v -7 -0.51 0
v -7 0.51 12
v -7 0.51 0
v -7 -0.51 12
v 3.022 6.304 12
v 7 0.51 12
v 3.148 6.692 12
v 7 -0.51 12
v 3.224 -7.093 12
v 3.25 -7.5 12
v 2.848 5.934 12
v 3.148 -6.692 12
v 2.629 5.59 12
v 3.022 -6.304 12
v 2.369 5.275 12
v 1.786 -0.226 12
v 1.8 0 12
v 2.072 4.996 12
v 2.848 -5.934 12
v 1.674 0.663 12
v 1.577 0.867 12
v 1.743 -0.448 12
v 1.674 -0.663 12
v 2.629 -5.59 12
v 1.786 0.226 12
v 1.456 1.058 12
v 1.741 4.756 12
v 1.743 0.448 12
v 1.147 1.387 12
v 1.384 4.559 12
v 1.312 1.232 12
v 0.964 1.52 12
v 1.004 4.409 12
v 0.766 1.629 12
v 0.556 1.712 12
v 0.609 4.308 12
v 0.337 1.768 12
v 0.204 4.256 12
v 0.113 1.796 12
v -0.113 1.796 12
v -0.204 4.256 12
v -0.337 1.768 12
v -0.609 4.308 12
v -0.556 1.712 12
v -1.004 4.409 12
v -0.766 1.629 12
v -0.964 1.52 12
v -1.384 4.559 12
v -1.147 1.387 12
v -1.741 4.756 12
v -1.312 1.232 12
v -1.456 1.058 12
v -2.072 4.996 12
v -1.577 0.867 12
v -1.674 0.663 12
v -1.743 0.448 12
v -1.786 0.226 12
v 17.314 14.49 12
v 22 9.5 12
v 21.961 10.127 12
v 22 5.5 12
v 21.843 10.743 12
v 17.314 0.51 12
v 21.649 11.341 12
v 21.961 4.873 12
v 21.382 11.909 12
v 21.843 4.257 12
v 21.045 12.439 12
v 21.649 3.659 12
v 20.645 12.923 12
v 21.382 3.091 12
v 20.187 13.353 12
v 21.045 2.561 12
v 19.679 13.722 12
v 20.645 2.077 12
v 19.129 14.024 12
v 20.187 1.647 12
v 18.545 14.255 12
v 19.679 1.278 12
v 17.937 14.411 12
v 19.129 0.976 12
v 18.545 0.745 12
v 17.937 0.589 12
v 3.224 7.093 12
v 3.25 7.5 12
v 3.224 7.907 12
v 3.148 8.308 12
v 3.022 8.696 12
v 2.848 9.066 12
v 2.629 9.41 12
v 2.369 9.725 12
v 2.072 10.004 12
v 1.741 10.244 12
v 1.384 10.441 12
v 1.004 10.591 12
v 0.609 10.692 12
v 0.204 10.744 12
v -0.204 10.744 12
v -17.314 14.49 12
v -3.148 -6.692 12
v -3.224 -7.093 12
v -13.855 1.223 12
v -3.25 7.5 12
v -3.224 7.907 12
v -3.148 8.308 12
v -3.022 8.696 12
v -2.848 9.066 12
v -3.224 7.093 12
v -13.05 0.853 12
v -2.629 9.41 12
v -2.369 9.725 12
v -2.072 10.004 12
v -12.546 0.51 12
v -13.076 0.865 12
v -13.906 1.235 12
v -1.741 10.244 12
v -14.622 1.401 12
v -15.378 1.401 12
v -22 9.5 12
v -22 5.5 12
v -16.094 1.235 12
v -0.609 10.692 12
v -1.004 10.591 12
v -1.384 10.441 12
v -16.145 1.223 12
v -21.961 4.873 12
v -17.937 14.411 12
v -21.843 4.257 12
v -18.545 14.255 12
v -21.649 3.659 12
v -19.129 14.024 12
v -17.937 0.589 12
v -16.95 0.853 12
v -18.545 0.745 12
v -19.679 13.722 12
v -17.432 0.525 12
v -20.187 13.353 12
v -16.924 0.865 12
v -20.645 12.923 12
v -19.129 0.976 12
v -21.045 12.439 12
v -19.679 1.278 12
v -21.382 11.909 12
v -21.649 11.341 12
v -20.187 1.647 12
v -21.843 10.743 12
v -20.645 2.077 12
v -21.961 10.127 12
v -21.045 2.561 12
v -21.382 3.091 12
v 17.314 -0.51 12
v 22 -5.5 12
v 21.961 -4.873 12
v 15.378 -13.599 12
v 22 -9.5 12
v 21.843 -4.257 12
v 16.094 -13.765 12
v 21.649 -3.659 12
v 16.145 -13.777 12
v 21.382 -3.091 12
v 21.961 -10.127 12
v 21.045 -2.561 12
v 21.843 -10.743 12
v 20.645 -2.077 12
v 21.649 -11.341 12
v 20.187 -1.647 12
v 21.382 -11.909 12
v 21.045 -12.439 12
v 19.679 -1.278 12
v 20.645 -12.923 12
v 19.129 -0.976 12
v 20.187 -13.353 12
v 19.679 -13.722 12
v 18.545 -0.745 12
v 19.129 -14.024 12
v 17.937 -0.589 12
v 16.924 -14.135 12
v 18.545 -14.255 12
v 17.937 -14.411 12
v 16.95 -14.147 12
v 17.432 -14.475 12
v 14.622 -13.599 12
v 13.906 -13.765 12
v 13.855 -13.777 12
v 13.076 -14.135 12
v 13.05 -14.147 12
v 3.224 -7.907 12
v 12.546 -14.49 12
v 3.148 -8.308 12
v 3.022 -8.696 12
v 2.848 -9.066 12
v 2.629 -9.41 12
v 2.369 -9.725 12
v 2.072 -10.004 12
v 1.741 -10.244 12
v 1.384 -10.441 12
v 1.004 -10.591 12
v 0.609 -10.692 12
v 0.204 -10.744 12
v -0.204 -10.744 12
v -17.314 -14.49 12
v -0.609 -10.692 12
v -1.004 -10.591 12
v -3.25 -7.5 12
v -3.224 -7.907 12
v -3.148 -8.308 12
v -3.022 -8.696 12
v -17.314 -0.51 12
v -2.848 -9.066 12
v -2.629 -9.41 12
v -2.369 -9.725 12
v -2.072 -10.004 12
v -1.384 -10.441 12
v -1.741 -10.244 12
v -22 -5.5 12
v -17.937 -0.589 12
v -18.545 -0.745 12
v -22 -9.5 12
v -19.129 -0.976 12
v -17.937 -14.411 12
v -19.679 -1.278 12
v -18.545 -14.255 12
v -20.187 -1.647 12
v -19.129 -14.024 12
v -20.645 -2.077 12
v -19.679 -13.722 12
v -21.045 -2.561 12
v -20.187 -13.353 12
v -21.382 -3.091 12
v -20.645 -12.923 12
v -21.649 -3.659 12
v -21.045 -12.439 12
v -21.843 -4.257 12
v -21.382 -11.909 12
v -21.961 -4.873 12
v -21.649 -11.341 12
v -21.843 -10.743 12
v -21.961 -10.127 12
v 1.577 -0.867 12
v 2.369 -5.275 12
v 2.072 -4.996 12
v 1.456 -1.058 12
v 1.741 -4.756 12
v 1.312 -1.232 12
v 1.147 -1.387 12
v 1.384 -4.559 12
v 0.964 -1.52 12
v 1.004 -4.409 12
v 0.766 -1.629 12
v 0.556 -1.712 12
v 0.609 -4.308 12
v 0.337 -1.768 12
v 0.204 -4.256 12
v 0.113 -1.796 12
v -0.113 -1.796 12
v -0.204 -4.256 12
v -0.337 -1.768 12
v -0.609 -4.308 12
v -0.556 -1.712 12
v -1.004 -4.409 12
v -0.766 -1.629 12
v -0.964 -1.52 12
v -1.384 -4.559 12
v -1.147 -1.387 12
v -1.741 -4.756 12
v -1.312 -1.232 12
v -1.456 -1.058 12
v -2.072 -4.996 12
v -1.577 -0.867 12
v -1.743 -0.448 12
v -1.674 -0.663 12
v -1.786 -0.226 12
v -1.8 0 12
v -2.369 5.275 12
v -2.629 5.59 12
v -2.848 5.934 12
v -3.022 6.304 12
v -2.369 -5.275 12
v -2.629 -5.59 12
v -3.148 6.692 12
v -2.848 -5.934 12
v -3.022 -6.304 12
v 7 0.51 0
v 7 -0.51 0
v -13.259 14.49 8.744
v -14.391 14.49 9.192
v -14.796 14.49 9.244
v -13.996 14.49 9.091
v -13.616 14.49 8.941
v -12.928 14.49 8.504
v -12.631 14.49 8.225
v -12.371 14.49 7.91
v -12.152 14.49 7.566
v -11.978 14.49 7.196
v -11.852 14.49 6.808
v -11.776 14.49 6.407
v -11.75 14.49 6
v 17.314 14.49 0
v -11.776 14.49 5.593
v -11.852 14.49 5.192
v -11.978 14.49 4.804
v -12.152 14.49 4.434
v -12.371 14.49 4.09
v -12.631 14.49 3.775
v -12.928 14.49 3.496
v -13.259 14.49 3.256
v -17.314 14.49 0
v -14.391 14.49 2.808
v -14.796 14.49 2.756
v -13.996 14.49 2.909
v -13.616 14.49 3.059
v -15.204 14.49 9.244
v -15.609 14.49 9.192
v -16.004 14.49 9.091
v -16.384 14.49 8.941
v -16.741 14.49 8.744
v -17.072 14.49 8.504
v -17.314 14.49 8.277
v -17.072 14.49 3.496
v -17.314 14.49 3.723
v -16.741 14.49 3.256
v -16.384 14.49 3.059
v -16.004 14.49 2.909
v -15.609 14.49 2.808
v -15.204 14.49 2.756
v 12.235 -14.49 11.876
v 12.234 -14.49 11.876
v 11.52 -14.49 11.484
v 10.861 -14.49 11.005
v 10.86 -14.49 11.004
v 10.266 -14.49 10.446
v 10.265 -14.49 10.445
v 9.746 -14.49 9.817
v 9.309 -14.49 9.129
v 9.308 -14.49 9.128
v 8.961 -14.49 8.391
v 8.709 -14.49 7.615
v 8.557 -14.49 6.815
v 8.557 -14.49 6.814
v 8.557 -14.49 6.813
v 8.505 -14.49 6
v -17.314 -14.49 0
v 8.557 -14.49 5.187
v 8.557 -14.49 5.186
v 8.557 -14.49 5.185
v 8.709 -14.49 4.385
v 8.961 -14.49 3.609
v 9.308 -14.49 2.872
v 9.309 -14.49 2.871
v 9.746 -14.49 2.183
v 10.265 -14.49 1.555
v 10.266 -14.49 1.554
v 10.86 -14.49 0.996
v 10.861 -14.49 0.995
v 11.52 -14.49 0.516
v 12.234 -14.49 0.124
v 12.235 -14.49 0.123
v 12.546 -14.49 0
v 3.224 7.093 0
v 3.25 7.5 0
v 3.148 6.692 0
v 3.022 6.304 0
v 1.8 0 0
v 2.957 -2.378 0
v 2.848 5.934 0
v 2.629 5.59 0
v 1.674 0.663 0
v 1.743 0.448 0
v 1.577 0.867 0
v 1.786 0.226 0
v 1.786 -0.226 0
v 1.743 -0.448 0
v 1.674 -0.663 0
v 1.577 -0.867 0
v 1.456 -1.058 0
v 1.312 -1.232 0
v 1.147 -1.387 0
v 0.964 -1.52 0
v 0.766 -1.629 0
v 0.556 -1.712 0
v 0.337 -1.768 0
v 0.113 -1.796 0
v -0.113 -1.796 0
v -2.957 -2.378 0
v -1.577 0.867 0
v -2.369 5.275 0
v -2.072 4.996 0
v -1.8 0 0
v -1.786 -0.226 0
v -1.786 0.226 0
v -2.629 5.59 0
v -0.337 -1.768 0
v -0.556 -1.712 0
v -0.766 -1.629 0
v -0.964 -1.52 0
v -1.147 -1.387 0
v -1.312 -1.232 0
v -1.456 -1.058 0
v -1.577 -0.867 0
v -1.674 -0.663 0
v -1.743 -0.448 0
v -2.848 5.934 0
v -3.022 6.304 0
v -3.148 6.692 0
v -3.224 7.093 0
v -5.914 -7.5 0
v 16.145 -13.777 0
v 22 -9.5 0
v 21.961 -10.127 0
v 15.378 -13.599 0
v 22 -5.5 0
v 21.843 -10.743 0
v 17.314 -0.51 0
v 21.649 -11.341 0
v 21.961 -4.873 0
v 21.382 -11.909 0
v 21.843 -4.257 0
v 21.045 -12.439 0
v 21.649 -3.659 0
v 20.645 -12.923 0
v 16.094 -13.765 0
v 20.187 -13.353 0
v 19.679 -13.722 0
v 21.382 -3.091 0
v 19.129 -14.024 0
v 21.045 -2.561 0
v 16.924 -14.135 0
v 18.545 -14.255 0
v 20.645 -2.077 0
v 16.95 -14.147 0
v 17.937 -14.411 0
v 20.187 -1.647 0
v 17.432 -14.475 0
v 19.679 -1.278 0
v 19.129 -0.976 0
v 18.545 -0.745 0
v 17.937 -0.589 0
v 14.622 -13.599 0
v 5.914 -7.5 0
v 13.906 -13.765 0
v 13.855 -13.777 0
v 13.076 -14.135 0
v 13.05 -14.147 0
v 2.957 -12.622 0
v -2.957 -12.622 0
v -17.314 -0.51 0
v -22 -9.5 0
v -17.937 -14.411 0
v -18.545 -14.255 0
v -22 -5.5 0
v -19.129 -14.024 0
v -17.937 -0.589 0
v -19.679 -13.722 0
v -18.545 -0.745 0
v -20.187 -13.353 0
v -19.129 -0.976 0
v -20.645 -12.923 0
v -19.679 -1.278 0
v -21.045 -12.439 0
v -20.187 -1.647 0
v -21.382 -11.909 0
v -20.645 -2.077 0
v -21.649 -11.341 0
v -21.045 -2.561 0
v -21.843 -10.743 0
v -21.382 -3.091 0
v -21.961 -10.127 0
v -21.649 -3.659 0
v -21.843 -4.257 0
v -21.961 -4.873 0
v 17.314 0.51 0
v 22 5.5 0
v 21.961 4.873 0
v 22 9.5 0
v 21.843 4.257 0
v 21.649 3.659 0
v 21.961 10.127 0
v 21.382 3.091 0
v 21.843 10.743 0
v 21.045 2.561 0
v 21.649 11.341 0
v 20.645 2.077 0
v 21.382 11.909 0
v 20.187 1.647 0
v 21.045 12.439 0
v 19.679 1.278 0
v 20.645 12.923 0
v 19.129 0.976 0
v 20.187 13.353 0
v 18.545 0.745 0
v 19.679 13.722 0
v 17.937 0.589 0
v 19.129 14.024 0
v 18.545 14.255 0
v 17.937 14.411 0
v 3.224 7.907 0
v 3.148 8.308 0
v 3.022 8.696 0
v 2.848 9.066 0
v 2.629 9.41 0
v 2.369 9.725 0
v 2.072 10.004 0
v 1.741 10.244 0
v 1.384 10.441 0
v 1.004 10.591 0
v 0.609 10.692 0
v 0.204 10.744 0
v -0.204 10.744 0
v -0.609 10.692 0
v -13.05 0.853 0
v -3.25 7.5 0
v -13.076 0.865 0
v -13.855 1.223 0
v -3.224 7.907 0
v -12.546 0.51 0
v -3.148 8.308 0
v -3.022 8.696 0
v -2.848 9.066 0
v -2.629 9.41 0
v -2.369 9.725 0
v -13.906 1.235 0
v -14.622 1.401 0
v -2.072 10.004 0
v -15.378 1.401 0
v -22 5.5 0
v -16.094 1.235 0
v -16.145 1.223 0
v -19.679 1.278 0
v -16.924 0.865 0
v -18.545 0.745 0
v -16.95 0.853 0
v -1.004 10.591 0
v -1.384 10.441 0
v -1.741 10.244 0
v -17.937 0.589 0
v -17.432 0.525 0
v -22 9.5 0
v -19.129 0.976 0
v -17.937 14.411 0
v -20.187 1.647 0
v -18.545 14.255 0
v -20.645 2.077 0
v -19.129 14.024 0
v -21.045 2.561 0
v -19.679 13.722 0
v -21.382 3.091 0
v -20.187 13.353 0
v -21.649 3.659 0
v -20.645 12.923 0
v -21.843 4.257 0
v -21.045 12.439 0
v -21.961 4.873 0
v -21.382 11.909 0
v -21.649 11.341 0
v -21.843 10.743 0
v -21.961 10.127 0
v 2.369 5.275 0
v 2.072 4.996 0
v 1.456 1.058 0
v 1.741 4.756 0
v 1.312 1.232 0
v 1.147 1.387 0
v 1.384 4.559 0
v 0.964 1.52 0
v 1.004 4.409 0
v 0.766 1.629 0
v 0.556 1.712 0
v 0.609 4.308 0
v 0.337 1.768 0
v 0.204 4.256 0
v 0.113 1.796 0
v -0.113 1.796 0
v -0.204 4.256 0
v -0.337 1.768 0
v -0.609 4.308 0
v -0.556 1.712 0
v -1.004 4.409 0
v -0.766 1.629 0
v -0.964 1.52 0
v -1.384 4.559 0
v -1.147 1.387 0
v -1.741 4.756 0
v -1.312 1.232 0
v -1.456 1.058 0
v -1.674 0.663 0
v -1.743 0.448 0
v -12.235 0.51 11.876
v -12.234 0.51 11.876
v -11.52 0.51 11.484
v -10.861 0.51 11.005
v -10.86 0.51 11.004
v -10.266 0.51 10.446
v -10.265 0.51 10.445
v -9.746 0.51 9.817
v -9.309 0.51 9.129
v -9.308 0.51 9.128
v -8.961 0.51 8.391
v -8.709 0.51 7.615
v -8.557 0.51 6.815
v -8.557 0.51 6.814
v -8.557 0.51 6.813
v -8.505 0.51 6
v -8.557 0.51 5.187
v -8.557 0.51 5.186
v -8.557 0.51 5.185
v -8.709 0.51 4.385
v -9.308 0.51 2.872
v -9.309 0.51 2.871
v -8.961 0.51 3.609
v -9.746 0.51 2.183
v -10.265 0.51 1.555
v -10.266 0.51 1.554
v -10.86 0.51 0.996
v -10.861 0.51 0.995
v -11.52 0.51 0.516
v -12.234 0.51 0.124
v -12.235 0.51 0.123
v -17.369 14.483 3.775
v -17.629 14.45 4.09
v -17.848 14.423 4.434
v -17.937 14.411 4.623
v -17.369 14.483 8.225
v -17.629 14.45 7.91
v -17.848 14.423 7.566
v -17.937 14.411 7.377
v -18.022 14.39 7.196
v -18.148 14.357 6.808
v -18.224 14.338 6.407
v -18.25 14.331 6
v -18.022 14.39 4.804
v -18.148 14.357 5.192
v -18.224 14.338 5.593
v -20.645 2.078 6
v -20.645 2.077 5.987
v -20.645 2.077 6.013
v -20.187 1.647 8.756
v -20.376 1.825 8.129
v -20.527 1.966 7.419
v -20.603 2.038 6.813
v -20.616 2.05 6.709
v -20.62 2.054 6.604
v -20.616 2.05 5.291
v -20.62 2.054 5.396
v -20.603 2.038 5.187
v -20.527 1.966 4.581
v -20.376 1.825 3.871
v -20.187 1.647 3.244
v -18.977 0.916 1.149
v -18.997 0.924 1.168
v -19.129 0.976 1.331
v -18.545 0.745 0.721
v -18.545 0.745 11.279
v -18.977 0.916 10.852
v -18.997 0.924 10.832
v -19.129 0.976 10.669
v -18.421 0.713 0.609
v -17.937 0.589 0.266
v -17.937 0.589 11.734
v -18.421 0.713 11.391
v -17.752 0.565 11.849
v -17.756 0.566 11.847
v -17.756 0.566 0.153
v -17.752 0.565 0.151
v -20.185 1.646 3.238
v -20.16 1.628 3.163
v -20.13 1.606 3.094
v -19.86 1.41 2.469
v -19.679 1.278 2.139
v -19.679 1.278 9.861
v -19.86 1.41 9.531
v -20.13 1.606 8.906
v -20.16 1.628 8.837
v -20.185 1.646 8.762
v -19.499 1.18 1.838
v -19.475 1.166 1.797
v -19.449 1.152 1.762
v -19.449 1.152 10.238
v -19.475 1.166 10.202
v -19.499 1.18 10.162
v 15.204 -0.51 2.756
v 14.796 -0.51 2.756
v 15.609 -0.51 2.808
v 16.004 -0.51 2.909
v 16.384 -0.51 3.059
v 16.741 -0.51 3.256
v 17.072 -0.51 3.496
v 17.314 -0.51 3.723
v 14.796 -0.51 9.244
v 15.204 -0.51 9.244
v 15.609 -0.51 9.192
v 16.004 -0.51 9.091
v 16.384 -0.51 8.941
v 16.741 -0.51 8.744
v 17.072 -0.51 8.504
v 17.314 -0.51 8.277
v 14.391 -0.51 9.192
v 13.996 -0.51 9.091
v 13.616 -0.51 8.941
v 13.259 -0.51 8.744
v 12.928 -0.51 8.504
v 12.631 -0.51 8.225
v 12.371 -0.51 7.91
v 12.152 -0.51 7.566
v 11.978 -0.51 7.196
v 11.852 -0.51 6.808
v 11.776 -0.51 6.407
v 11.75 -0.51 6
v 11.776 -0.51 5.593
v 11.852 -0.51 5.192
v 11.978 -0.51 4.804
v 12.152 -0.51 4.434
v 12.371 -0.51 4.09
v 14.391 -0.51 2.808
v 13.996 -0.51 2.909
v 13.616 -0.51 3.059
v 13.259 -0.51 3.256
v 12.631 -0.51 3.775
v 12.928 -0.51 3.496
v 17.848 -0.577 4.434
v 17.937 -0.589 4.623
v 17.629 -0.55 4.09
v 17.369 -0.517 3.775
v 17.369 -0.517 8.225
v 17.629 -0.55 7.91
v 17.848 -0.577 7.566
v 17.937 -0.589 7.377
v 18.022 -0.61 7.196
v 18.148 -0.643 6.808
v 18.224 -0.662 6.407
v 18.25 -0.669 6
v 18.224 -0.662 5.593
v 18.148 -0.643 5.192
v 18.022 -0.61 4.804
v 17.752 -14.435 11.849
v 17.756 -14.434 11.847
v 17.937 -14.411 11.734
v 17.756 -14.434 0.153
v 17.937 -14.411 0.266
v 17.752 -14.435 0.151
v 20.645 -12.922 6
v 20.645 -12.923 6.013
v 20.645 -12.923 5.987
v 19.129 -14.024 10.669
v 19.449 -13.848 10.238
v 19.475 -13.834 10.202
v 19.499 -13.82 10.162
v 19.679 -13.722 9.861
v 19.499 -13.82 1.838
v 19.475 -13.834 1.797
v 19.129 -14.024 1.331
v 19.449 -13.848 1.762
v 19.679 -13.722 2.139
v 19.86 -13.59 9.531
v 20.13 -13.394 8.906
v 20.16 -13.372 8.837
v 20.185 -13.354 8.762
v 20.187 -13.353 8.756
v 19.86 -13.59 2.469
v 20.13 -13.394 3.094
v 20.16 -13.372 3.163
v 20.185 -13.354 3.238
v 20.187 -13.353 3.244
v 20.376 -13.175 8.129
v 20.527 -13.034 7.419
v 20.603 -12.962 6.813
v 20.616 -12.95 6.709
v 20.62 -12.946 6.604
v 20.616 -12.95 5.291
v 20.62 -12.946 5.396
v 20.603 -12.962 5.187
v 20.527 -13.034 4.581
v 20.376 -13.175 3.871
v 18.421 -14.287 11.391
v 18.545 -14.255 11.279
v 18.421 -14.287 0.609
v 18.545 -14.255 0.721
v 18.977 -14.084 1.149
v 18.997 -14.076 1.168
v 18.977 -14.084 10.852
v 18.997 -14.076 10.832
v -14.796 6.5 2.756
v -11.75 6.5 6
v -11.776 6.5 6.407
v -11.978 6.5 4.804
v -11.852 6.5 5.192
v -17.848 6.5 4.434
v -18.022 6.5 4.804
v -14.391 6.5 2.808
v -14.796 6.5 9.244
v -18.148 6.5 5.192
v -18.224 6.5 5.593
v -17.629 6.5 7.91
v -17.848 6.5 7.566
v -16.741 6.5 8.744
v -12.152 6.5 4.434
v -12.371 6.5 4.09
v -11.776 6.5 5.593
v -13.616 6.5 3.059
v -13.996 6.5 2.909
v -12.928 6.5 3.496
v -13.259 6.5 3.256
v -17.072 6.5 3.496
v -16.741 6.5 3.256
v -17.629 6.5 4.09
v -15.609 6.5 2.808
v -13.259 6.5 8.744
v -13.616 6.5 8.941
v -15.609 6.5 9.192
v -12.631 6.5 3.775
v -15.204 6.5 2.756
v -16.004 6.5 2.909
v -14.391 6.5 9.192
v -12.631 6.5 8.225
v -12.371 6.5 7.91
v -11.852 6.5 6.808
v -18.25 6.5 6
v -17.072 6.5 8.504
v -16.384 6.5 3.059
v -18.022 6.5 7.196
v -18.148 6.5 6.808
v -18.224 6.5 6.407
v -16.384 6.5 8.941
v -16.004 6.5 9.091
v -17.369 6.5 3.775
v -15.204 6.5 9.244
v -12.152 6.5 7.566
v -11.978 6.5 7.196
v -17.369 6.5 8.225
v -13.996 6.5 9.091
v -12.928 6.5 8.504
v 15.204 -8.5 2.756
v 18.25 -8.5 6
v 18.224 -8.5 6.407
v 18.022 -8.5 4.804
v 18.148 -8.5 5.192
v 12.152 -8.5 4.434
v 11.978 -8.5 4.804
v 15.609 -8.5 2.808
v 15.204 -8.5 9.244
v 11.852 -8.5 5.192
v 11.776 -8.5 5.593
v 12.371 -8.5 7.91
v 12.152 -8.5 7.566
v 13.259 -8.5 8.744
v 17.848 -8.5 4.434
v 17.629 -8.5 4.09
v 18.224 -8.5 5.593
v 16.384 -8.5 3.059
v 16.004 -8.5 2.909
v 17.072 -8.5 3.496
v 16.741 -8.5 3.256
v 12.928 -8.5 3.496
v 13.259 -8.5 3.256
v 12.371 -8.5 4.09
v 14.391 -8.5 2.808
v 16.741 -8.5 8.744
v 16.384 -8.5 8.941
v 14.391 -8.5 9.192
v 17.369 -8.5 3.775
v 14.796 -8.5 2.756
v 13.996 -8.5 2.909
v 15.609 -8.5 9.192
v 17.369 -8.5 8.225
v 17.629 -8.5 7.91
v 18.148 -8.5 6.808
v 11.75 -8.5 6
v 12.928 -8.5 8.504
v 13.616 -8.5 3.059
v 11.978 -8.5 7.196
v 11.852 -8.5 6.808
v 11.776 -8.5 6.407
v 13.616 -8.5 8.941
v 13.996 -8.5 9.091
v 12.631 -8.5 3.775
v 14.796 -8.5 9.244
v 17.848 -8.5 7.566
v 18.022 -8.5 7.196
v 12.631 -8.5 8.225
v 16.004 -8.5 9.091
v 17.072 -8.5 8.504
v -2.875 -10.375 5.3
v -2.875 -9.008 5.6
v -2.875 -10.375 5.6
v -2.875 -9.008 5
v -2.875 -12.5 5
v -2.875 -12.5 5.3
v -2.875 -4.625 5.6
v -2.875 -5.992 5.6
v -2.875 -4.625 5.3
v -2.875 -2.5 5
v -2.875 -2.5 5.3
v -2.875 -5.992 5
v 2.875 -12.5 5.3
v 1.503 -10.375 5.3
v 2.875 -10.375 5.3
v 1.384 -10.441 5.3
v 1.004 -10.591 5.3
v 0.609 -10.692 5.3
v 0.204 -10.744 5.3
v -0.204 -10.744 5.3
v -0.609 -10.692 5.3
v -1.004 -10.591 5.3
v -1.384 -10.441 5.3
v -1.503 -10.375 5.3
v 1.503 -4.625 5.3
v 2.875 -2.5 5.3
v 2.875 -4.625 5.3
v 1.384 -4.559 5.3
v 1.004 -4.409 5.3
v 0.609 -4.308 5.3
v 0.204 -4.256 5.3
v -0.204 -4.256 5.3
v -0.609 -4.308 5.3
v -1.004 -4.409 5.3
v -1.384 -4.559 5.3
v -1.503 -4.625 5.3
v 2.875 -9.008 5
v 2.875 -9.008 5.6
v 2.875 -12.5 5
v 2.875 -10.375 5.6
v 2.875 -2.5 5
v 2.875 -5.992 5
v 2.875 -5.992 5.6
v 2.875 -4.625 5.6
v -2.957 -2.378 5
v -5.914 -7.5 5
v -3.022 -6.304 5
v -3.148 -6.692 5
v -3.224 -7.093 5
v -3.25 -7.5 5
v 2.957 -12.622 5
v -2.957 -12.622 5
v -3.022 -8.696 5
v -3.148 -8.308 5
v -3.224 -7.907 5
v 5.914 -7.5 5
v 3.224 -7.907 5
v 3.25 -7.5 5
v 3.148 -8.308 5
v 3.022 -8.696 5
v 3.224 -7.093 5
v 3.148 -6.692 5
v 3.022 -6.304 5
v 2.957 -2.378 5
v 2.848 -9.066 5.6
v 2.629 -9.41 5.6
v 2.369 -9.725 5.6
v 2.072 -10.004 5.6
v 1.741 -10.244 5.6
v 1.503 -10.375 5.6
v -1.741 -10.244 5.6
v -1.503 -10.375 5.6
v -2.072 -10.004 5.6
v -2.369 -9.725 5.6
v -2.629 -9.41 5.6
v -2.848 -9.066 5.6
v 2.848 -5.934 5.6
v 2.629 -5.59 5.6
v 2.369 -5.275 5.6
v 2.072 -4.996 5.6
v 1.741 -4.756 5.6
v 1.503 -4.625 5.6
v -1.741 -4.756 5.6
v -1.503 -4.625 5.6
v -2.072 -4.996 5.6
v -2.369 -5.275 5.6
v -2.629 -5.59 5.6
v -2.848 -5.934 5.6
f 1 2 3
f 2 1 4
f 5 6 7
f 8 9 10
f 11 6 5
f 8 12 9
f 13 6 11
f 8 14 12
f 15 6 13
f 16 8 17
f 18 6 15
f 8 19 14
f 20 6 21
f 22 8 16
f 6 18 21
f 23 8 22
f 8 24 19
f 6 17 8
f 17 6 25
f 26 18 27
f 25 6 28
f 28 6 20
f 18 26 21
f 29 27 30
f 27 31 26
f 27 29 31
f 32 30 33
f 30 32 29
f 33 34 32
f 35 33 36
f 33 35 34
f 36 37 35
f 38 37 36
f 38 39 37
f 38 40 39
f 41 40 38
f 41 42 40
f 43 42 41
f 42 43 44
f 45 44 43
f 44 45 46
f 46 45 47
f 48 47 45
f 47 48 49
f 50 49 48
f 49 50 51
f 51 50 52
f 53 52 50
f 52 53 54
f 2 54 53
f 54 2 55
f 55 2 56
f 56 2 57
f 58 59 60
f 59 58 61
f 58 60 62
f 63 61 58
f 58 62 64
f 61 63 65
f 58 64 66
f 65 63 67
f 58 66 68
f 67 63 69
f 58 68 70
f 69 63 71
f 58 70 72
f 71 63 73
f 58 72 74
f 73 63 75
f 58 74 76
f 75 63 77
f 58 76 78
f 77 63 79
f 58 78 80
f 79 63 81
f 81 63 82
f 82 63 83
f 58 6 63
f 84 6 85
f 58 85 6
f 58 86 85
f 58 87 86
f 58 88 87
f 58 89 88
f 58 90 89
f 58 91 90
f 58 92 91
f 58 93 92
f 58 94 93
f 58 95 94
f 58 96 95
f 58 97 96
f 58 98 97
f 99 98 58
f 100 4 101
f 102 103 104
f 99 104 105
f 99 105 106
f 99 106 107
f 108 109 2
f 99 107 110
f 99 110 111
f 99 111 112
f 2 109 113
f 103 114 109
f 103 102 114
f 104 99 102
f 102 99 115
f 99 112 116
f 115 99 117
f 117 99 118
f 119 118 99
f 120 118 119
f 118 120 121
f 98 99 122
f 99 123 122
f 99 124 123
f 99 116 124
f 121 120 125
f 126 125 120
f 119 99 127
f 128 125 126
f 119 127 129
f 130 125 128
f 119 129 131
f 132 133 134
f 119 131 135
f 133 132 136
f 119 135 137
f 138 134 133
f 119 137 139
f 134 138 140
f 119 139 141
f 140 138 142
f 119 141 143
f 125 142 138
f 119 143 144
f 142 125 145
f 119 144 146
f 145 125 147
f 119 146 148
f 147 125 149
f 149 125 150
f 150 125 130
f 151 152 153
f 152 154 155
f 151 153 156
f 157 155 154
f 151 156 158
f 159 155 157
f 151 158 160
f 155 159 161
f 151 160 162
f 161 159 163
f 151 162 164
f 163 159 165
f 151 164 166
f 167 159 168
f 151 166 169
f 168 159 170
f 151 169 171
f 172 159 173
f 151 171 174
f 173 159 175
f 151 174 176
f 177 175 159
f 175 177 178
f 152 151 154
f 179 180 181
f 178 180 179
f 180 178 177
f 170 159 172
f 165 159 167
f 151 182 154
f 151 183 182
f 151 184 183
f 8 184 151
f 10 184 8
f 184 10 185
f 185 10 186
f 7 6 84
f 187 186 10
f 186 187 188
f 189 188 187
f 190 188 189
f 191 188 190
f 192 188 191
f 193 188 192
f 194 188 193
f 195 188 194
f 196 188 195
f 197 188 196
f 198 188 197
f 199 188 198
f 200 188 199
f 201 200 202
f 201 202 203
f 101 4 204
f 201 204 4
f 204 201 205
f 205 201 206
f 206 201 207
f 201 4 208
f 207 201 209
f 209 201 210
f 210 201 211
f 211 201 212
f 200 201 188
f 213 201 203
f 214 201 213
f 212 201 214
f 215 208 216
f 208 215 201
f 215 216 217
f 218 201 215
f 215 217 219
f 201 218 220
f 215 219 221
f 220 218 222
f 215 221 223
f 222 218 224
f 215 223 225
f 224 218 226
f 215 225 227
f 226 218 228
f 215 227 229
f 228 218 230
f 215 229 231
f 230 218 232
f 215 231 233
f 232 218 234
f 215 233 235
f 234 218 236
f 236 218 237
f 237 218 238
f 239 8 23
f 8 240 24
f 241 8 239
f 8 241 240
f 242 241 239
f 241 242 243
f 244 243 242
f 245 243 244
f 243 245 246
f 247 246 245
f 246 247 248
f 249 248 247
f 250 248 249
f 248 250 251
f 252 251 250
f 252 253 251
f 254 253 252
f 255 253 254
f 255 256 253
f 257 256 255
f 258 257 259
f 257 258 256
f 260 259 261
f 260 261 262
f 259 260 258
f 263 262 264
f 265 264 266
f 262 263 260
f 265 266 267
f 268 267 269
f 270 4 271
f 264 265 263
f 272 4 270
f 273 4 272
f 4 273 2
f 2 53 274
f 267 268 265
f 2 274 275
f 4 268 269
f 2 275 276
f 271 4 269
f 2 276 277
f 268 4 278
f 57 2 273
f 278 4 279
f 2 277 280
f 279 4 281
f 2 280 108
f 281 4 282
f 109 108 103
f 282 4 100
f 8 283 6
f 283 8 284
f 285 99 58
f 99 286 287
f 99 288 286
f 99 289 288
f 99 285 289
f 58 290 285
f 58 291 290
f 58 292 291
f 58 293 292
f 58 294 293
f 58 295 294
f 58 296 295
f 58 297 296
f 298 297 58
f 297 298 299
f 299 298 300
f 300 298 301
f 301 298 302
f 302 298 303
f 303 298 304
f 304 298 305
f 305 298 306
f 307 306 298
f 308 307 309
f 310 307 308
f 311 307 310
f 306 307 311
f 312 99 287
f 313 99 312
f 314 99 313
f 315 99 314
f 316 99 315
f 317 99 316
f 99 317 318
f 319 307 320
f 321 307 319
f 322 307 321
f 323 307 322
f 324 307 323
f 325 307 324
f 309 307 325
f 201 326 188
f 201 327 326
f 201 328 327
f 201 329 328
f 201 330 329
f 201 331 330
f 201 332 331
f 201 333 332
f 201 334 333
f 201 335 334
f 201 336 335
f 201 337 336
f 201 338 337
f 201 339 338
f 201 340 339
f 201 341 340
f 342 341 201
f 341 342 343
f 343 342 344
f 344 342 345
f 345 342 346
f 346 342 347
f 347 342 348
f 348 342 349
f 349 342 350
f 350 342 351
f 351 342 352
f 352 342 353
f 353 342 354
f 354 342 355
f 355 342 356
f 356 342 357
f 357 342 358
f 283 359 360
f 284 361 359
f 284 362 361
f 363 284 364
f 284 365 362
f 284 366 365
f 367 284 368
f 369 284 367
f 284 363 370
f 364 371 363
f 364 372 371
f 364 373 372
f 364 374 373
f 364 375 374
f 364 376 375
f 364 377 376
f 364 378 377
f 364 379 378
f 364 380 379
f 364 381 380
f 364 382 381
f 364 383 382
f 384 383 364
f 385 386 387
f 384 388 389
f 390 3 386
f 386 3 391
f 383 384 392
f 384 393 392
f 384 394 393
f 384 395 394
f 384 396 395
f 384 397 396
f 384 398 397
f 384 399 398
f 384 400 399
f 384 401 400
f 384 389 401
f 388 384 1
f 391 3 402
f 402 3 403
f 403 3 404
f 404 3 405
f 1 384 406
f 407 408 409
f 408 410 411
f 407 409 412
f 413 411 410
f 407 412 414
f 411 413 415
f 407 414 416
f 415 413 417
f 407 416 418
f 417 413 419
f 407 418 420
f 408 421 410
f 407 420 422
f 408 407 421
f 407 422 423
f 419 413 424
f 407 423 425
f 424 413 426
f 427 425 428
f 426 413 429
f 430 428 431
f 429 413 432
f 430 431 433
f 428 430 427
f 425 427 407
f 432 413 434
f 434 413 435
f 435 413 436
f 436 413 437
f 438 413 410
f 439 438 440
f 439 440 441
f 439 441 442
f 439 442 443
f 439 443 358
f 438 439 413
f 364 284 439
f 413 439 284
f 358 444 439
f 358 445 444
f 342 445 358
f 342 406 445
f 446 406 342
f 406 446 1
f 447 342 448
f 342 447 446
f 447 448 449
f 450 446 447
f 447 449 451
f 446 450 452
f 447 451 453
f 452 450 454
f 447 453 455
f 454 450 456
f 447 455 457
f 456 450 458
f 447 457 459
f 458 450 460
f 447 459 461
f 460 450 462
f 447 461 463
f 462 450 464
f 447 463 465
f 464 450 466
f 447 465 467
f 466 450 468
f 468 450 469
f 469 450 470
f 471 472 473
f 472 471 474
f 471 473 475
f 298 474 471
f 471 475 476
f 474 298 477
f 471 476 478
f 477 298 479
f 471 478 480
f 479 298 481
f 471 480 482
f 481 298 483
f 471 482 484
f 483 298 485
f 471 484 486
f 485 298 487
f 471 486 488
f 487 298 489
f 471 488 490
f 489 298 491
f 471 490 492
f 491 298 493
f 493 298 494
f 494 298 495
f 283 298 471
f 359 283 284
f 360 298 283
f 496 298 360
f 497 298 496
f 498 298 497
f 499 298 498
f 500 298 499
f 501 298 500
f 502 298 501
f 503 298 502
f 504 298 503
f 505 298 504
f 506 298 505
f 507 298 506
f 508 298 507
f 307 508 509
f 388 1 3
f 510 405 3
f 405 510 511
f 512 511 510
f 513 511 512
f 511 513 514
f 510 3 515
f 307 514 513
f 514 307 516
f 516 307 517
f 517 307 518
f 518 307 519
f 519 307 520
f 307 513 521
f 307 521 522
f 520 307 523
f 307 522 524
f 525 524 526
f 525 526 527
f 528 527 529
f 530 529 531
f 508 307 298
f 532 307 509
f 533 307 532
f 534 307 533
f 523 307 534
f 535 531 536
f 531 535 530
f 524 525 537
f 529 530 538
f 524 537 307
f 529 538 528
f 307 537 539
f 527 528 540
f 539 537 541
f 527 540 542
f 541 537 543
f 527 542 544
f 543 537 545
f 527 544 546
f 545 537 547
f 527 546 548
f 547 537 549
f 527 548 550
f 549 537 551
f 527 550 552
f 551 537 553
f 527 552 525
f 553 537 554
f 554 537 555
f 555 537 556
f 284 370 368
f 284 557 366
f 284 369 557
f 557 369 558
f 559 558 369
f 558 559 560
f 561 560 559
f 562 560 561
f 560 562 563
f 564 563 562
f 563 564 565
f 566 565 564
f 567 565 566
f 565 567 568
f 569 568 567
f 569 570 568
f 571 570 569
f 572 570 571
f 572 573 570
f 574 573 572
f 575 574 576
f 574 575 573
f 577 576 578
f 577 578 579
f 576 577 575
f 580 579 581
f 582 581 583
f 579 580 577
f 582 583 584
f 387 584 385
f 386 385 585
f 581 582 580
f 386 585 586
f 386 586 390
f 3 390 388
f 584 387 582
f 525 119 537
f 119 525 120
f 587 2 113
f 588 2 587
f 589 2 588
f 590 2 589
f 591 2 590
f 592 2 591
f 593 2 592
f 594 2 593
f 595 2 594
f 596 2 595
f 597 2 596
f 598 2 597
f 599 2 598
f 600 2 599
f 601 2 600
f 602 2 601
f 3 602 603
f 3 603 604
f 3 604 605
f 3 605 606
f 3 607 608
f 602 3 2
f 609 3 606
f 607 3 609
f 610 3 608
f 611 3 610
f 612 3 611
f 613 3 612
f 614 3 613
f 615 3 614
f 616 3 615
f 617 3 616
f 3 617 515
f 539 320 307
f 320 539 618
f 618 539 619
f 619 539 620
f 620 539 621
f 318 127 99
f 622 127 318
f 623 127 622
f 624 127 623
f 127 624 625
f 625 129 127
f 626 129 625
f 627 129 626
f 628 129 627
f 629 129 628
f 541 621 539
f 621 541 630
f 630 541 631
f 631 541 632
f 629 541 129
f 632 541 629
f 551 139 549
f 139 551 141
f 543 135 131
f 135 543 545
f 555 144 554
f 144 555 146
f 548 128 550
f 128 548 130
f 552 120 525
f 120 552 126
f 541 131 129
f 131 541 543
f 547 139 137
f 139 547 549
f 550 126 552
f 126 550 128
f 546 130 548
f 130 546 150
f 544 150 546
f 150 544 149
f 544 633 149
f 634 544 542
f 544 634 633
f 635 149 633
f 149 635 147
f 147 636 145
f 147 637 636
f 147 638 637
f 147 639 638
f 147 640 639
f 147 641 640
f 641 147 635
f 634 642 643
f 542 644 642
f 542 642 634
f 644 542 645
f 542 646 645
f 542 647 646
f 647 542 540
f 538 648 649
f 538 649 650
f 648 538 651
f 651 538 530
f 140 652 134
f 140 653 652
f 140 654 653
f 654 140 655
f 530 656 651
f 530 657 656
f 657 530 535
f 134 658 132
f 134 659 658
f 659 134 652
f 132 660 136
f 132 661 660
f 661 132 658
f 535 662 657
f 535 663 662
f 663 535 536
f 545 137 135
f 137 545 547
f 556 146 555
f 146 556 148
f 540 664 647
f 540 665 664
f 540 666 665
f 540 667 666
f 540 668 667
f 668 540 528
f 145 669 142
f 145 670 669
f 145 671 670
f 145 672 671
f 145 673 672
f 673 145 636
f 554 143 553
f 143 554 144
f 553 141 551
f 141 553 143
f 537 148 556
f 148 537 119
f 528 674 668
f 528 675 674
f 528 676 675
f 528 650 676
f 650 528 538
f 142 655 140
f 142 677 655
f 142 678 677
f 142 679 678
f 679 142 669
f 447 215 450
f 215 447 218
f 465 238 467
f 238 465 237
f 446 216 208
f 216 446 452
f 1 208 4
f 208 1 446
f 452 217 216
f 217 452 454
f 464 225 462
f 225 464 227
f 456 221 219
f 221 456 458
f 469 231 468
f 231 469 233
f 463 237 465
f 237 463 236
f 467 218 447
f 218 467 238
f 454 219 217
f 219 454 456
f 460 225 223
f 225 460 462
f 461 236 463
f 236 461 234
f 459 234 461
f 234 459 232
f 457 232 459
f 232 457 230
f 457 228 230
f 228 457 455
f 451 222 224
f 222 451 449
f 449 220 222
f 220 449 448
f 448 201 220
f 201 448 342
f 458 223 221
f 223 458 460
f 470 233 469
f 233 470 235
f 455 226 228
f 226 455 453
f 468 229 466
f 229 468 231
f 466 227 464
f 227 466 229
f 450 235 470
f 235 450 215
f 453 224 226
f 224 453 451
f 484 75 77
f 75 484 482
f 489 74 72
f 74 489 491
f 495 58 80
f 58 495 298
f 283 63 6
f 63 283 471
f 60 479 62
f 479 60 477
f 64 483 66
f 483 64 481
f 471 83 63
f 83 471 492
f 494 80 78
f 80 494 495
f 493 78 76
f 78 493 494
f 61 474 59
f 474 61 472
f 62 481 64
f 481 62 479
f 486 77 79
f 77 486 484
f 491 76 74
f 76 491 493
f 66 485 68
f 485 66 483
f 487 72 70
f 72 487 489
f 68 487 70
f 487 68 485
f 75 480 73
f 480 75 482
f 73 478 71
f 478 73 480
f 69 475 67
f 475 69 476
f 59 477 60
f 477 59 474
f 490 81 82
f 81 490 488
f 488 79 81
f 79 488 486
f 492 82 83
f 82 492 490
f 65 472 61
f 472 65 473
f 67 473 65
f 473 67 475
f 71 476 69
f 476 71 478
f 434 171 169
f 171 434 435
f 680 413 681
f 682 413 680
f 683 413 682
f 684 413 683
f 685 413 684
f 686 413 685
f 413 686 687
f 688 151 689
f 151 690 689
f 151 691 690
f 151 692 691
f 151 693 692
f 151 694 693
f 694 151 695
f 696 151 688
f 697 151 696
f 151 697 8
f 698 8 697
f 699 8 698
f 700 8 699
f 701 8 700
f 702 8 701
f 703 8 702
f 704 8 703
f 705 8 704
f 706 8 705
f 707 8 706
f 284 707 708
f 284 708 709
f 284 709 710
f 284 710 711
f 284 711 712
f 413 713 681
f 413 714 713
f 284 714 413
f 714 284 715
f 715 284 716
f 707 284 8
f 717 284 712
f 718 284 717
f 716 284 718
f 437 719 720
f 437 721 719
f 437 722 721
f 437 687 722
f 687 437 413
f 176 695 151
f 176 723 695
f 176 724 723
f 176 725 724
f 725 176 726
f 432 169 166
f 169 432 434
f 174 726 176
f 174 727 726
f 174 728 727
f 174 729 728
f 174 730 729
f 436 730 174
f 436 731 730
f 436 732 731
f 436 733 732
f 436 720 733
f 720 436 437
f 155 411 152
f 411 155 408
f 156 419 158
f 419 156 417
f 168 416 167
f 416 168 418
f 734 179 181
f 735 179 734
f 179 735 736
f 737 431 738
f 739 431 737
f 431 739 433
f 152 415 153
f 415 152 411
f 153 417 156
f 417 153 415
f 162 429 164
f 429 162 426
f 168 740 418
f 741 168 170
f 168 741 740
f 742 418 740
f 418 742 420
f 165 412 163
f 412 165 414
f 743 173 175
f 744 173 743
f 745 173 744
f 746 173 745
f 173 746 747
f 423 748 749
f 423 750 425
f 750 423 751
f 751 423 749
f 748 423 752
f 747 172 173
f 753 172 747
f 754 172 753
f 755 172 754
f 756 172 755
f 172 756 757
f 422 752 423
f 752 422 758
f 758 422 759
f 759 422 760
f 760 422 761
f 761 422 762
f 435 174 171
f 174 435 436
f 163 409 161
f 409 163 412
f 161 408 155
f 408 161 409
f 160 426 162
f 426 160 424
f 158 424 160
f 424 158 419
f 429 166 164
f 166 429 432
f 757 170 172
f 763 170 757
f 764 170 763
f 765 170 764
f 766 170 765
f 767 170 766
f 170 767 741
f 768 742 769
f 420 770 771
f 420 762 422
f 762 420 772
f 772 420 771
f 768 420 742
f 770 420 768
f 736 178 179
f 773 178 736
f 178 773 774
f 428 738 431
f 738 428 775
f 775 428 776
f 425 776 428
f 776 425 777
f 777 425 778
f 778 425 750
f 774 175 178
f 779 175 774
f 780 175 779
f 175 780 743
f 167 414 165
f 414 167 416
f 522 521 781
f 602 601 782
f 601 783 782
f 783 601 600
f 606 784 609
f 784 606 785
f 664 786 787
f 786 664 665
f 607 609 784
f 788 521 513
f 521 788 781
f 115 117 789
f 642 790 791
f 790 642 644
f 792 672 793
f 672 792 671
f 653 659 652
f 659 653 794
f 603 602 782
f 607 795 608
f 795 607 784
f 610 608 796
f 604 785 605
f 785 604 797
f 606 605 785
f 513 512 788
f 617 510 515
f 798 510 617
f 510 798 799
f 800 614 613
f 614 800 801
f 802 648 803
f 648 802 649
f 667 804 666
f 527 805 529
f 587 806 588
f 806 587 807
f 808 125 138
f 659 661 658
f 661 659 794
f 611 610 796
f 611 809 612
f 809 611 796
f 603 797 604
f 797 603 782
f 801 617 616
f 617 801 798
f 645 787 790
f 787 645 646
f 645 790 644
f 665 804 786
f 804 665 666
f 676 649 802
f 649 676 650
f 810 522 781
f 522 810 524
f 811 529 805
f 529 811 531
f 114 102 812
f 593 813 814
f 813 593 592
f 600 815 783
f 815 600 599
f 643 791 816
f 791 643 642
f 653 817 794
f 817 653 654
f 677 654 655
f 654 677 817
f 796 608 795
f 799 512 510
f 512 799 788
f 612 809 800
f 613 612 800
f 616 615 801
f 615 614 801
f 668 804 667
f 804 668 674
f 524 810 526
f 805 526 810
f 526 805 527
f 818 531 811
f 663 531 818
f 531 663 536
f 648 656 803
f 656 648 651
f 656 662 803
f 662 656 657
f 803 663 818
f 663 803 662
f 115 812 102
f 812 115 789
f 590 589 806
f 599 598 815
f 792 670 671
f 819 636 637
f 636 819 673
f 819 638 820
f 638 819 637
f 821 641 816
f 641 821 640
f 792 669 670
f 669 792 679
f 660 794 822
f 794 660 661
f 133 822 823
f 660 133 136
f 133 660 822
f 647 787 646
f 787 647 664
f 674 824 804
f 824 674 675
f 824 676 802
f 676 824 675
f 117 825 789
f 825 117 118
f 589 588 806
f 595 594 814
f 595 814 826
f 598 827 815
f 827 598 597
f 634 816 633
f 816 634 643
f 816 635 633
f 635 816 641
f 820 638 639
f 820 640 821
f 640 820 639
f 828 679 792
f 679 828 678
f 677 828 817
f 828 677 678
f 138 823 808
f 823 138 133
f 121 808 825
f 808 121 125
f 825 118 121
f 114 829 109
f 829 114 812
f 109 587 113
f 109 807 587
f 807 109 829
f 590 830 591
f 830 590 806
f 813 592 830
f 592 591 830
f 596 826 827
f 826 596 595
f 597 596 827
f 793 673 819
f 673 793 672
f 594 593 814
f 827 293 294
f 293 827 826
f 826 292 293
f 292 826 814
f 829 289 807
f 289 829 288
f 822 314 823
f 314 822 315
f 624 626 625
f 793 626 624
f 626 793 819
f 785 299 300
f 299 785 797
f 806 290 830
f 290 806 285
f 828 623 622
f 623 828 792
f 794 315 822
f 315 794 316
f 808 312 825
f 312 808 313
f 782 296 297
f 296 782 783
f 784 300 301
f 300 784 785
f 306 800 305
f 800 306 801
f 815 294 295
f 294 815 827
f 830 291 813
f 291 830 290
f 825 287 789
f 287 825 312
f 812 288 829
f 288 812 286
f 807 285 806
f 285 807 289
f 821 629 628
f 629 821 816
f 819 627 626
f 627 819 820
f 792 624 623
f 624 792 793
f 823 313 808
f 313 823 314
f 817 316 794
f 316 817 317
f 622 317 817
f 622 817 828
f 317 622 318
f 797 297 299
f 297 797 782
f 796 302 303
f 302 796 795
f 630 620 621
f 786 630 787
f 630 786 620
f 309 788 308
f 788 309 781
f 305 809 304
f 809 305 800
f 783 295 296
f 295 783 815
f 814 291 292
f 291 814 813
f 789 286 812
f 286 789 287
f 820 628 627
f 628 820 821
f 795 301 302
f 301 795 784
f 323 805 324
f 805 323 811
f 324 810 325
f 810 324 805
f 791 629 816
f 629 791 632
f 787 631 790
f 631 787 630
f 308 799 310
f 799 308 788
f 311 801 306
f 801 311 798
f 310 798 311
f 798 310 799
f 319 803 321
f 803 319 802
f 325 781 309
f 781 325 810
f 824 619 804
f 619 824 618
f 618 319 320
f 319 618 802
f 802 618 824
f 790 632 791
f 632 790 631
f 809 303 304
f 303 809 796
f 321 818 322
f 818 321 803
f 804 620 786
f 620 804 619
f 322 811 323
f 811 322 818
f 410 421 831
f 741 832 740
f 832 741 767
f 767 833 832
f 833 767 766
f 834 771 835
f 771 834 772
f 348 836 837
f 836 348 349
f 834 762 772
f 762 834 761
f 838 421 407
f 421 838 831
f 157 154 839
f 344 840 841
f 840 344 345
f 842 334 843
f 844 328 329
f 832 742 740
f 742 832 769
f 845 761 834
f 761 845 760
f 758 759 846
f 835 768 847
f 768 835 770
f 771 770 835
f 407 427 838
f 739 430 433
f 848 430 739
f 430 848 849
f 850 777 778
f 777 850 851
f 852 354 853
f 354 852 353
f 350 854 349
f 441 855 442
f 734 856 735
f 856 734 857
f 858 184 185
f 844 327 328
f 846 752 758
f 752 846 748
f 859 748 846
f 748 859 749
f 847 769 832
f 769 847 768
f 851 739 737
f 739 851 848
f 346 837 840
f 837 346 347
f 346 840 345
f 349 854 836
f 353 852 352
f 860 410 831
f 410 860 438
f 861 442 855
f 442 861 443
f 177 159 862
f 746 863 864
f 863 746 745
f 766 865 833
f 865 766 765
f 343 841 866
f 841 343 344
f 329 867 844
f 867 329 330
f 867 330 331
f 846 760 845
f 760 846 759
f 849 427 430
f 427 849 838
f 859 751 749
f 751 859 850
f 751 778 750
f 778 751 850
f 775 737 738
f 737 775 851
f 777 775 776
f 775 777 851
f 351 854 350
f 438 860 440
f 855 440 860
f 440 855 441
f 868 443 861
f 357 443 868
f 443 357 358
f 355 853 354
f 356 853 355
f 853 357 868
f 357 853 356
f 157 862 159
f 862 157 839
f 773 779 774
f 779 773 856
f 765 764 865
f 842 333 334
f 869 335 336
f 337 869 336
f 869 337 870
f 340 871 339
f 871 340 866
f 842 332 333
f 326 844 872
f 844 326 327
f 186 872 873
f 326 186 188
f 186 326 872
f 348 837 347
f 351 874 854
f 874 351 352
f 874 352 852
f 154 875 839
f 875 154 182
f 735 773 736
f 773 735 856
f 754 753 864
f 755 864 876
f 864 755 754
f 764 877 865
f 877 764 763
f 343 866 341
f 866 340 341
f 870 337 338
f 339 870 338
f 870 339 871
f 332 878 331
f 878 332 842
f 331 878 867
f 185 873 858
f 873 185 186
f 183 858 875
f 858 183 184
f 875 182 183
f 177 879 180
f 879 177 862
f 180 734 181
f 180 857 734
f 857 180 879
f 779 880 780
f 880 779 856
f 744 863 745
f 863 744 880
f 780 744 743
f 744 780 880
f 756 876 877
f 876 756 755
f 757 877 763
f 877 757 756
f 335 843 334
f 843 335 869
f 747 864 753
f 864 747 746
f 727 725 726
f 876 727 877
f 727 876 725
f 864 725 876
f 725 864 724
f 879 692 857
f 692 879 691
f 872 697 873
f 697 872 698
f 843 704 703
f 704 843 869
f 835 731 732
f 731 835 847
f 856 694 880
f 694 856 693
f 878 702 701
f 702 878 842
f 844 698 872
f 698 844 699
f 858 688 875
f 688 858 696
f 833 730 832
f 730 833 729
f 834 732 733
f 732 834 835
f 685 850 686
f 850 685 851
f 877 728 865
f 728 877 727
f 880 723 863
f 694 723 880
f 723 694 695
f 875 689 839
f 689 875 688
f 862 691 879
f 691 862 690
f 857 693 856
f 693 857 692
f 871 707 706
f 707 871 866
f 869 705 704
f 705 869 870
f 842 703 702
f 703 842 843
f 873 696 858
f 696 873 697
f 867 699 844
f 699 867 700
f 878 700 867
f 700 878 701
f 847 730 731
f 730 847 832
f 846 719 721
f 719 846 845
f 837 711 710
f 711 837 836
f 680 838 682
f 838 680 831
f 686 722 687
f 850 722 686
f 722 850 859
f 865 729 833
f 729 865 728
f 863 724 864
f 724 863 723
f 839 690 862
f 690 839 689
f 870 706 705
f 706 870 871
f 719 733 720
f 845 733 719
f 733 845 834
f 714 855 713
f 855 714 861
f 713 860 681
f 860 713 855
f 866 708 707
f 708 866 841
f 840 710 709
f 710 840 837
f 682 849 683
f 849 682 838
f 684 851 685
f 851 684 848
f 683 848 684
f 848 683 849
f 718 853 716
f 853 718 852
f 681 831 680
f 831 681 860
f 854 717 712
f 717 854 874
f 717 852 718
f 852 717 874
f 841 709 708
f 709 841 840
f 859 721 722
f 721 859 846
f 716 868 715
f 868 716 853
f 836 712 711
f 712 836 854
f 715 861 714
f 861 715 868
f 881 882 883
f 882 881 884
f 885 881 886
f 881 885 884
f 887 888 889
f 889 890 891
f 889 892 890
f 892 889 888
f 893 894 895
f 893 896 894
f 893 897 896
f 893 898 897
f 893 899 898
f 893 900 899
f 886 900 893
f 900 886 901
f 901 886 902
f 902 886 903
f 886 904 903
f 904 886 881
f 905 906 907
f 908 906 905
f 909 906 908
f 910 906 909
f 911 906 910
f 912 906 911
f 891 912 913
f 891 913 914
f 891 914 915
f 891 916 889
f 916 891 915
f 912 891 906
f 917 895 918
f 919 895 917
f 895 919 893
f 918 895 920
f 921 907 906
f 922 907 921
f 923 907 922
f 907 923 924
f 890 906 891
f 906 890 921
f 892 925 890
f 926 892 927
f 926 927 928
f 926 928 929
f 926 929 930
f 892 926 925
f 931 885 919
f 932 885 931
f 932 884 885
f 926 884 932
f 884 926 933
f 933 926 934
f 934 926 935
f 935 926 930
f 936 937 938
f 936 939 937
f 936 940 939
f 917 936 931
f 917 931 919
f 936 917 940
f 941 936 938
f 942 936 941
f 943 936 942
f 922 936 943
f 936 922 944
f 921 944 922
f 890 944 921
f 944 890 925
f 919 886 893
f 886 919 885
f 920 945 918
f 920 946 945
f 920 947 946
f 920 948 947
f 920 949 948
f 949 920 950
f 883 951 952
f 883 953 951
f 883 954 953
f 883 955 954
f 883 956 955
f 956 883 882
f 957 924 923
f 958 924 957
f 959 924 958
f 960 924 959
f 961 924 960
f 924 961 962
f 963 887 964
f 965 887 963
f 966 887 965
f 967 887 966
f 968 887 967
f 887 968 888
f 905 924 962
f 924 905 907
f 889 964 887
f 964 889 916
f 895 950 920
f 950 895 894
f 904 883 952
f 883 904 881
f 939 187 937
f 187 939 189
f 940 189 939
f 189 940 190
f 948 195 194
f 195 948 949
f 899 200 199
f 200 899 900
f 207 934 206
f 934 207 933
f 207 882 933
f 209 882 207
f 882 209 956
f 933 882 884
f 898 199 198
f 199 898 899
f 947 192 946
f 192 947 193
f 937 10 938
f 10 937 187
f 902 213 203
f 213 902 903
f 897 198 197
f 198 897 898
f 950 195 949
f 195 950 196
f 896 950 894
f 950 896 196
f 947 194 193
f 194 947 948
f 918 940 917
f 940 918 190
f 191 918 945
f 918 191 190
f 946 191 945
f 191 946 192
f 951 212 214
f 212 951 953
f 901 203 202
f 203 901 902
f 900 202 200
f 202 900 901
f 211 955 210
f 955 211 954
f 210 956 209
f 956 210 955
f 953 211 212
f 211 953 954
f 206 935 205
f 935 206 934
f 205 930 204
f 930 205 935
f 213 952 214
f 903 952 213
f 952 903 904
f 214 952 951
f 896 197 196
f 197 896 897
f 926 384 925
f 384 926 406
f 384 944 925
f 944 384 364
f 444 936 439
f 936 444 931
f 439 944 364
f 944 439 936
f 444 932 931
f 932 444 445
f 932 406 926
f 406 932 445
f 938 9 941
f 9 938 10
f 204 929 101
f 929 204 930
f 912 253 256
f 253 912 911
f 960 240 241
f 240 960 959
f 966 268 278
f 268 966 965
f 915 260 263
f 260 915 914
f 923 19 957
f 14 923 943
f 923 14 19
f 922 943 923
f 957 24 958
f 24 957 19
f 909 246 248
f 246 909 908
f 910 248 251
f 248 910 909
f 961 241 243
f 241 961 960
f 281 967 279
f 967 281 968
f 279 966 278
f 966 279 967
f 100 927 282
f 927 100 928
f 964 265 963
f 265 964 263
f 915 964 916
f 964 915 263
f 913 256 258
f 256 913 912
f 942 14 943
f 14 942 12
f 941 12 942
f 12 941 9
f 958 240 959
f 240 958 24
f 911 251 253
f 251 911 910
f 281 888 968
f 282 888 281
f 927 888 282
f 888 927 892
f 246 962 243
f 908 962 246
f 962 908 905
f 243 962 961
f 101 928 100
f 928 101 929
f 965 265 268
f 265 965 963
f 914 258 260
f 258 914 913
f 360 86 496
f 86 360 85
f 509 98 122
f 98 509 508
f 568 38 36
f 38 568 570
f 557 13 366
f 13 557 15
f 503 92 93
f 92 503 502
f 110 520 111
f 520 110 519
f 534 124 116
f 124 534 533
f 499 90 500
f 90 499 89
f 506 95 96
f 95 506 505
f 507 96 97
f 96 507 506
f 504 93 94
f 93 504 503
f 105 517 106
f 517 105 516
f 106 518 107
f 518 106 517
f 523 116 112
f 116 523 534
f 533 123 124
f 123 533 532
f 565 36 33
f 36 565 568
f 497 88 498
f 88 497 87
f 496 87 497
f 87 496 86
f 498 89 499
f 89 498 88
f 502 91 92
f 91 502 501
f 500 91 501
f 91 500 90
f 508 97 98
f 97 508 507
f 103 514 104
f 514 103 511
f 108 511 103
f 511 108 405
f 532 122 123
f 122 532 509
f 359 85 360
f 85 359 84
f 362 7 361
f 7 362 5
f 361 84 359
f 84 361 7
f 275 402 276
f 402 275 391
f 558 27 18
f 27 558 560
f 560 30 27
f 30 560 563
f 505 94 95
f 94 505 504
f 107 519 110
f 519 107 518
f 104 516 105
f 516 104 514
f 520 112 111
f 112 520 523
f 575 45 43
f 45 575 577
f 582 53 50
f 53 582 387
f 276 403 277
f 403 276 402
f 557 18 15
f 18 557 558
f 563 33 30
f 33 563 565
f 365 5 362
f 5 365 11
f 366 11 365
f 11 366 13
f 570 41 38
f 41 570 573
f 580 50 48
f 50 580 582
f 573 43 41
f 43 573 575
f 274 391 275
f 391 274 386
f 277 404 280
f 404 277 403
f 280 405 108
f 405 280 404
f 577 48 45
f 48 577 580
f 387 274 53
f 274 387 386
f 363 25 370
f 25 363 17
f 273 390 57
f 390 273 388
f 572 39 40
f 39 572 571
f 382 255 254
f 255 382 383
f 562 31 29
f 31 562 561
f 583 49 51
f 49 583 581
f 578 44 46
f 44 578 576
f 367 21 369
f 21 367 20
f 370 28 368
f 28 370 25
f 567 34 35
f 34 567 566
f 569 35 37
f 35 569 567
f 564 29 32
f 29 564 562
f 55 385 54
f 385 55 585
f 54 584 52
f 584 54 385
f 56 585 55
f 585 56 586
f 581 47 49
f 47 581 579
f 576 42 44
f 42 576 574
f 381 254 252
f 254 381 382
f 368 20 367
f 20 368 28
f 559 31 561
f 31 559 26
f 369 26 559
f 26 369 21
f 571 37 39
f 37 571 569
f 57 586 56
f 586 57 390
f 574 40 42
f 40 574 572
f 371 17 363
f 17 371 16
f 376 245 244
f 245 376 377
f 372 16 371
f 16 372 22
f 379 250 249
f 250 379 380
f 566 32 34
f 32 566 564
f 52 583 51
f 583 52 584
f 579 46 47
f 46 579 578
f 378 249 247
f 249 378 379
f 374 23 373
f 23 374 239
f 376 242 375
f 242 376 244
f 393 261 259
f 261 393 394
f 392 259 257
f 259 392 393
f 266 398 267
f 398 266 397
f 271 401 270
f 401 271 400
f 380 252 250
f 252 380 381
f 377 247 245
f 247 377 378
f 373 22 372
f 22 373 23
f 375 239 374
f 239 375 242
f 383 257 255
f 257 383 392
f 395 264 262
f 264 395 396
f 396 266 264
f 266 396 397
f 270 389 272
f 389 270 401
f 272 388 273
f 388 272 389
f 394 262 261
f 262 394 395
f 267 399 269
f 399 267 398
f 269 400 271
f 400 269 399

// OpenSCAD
$fn = 50;


difference() {
	union() {
		hull() {
			translate(v = [-2.0000000000, 9.5000000000, 0]) {
				cylinder(h = 12, r = 5);
			}
			translate(v = [2.0000000000, 9.5000000000, 0]) {
				cylinder(h = 12, r = 5);
			}
			translate(v = [-2.0000000000, -9.5000000000, 0]) {
				cylinder(h = 12, r = 5);
			}
			translate(v = [2.0000000000, -9.5000000000, 0]) {
				cylinder(h = 12, r = 5);
			}
		}
		translate(v = [-7.5000000000, 7.5000000000, 0]) {
			hull() {
				translate(v = [-9.5000000000, 2.0000000000, 0]) {
					cylinder(h = 12, r = 5);
				}
				translate(v = [9.5000000000, 2.0000000000, 0]) {
					cylinder(h = 12, r = 5);
				}
				translate(v = [-9.5000000000, -2.0000000000, 0]) {
					cylinder(h = 12, r = 5);
				}
				translate(v = [9.5000000000, -2.0000000000, 0]) {
					cylinder(h = 12, r = 5);
				}
			}
		}
		translate(v = [-7.5000000000, -7.5000000000, 0]) {
			hull() {
				translate(v = [-9.5000000000, 2.0000000000, 0]) {
					cylinder(h = 12, r = 5);
				}
				translate(v = [9.5000000000, 2.0000000000, 0]) {
					cylinder(h = 12, r = 5);
				}
				translate(v = [-9.5000000000, -2.0000000000, 0]) {
					cylinder(h = 12, r = 5);
				}
				translate(v = [9.5000000000, -2.0000000000, 0]) {
					cylinder(h = 12, r = 5);
				}
			}
		}
		translate(v = [7.5000000000, 7.5000000000, 0]) {
			hull() {
				translate(v = [-9.5000000000, 2.0000000000, 0]) {
					cylinder(h = 12, r = 5);
				}
				translate(v = [9.5000000000, 2.0000000000, 0]) {
					cylinder(h = 12, r = 5);
				}
				translate(v = [-9.5000000000, -2.0000000000, 0]) {
					cylinder(h = 12, r = 5);
				}
				translate(v = [9.5000000000, -2.0000000000, 0]) {
					cylinder(h = 12, r = 5);
				}
			}
		}
		translate(v = [7.5000000000, -7.5000000000, 0]) {
			hull() {
				translate(v = [-9.5000000000, 2.0000000000, 0]) {
					cylinder(h = 12, r = 5);
				}
				translate(v = [9.5000000000, 2.0000000000, 0]) {
					cylinder(h = 12, r = 5);
				}
				translate(v = [-9.5000000000, -2.0000000000, 0]) {
					cylinder(h = 12, r = 5);
				}
				translate(v = [9.5000000000, -2.0000000000, 0]) {
					cylinder(h = 12, r = 5);
				}
			}
		}
	}
	union() {
		translate(v = [-15.0000000000, 0.5000000000, 6.0000000000]) {
			rotate(a = [90, 0, 0]) {
				difference() {
					union() {
						#translate(v = [0, 0, -14.0000000000]) {
							cylinder(h = 14, r = 2.2500000000);
						}
						#translate(v = [0, 0, -6]) {
							cylinder(h = 6, r1 = 3.2500000000, r2 = 6.5000000000);
						}
						#translate(v = [0, 0, -14.0000000000]) {
							cylinder(h = 14, r = 3.2500000000);
						}
						#translate(v = [0, 0, -14.0000000000]) {
							cylinder(h = 14, r = 2.2500000000);
						}
					}
					union();
				}
			}
		}
		translate(v = [15.0000000000, -14.5000000000, 6.0000000000]) {
			rotate(a = [90, 0, 0]) {
				difference() {
					union() {
						#translate(v = [0, 0, -14.0000000000]) {
							cylinder(h = 14, r = 2.2500000000);
						}
						#translate(v = [0, 0, -6]) {
							cylinder(h = 6, r1 = 3.2500000000, r2 = 6.5000000000);
						}
						#translate(v = [0, 0, -14.0000000000]) {
							cylinder(h = 14, r = 3.2500000000);
						}
						#translate(v = [0, 0, -14.0000000000]) {
							cylinder(h = 14, r = 2.2500000000);
						}
					}
					union();
				}
			}
		}
		translate(v = [0.0000000000, -7.5000000000, 0]) {
			rotate(a = [0, 0, 0]) {
				difference() {
					union() {
						#translate(v = [-2.8750000000, -5.0000000000, -0.3000000000]) {
							cube(size = [5.7500000000, 10, 0.3000000000]);
						}
						#translate(v = [-2.8750000000, -2.8750000000, -0.6000000000]) {
							cube(size = [5.7500000000, 5.7500000000, 0.3000000000]);
						}
						#translate(v = [-2.8750000000, -5.0000000000, 5]) {
							cube(size = [5.7500000000, 10, 0.3000000000]);
						}
						#translate(v = [-2.8750000000, -2.8750000000, 5.3000000000]) {
							cube(size = [5.7500000000, 5.7500000000, 0.3000000000]);
						}
						#translate(v = [0, 0, -100.0000000000]) {
							cylinder(h = 200, r = 3.2500000000);
						}
						#linear_extrude(height = 5) {
							polygon(points = [[5.9142500000, 0.0000000000], [2.9571250000, 5.1218907443], [-2.9571250000, 5.1218907443], [-5.9142500000, 0.0000000000], [-2.9571250000, -5.1218907443], [2.9571250000, -5.1218907443]]);
						}
						#translate(v = [-2.8750000000, -5.0000000000, -0.3000000000]) {
							cube(size = [5.7500000000, 10, 0.3000000000]);
						}
						#translate(v = [-2.8750000000, -2.8750000000, -0.6000000000]) {
							cube(size = [5.7500000000, 5.7500000000, 0.3000000000]);
						}
						#translate(v = [-2.8750000000, -5.0000000000, 5]) {
							cube(size = [5.7500000000, 10, 0.3000000000]);
						}
						#translate(v = [-2.8750000000, -2.8750000000, 5.3000000000]) {
							cube(size = [5.7500000000, 5.7500000000, 0.3000000000]);
						}
						#translate(v = [0, 0, -100.0000000000]) {
							cylinder(h = 200, r = 3.2500000000);
						}
						#translate(v = [-2.8750000000, -5.0000000000, -0.3000000000]) {
							cube(size = [5.7500000000, 10, 0.3000000000]);
						}
						#translate(v = [-2.8750000000, -2.8750000000, -0.6000000000]) {
							cube(size = [5.7500000000, 5.7500000000, 0.3000000000]);
						}
						#translate(v = [-2.8750000000, -5.0000000000, 5]) {
							cube(size = [5.7500000000, 10, 0.3000000000]);
						}
						#translate(v = [-2.8750000000, -2.8750000000, 5.3000000000]) {
							cube(size = [5.7500000000, 5.7500000000, 0.3000000000]);
						}
						#translate(v = [0, 0, -100.0000000000]) {
							cylinder(h = 200, r = 3.2500000000);
						}
					}
					union();
				}
			}
		}
		translate(v = [0.0000000000, -7.5000000000, 0]) {
			translate(v = [0, 0, -100]) {
				cylinder(h = 200, r = 3.2500000000);
			}
		}
		translate(v = [0.0000000000, 7.5000000000, 0]) {
			translate(v = [0, 0, -100]) {
				cylinder(h = 200, r = 3.2500000000);
			}
		}
		translate(v = [0.0000000000, -7.5000000000, 0]) {
			translate(v = [0, 0, -100]) {
				cylinder(h = 200, r = 1.8000000000);
			}
		}
		translate(v = [0, 0, -100]) {
			cylinder(h = 200, r = 1.8000000000);
		}
		translate(v = [0.0000000000, 7.5000000000, 0]) {
			translate(v = [0, 0, -100]) {
				cylinder(h = 200, r = 1.8000000000);
			}
		}
	}
}
